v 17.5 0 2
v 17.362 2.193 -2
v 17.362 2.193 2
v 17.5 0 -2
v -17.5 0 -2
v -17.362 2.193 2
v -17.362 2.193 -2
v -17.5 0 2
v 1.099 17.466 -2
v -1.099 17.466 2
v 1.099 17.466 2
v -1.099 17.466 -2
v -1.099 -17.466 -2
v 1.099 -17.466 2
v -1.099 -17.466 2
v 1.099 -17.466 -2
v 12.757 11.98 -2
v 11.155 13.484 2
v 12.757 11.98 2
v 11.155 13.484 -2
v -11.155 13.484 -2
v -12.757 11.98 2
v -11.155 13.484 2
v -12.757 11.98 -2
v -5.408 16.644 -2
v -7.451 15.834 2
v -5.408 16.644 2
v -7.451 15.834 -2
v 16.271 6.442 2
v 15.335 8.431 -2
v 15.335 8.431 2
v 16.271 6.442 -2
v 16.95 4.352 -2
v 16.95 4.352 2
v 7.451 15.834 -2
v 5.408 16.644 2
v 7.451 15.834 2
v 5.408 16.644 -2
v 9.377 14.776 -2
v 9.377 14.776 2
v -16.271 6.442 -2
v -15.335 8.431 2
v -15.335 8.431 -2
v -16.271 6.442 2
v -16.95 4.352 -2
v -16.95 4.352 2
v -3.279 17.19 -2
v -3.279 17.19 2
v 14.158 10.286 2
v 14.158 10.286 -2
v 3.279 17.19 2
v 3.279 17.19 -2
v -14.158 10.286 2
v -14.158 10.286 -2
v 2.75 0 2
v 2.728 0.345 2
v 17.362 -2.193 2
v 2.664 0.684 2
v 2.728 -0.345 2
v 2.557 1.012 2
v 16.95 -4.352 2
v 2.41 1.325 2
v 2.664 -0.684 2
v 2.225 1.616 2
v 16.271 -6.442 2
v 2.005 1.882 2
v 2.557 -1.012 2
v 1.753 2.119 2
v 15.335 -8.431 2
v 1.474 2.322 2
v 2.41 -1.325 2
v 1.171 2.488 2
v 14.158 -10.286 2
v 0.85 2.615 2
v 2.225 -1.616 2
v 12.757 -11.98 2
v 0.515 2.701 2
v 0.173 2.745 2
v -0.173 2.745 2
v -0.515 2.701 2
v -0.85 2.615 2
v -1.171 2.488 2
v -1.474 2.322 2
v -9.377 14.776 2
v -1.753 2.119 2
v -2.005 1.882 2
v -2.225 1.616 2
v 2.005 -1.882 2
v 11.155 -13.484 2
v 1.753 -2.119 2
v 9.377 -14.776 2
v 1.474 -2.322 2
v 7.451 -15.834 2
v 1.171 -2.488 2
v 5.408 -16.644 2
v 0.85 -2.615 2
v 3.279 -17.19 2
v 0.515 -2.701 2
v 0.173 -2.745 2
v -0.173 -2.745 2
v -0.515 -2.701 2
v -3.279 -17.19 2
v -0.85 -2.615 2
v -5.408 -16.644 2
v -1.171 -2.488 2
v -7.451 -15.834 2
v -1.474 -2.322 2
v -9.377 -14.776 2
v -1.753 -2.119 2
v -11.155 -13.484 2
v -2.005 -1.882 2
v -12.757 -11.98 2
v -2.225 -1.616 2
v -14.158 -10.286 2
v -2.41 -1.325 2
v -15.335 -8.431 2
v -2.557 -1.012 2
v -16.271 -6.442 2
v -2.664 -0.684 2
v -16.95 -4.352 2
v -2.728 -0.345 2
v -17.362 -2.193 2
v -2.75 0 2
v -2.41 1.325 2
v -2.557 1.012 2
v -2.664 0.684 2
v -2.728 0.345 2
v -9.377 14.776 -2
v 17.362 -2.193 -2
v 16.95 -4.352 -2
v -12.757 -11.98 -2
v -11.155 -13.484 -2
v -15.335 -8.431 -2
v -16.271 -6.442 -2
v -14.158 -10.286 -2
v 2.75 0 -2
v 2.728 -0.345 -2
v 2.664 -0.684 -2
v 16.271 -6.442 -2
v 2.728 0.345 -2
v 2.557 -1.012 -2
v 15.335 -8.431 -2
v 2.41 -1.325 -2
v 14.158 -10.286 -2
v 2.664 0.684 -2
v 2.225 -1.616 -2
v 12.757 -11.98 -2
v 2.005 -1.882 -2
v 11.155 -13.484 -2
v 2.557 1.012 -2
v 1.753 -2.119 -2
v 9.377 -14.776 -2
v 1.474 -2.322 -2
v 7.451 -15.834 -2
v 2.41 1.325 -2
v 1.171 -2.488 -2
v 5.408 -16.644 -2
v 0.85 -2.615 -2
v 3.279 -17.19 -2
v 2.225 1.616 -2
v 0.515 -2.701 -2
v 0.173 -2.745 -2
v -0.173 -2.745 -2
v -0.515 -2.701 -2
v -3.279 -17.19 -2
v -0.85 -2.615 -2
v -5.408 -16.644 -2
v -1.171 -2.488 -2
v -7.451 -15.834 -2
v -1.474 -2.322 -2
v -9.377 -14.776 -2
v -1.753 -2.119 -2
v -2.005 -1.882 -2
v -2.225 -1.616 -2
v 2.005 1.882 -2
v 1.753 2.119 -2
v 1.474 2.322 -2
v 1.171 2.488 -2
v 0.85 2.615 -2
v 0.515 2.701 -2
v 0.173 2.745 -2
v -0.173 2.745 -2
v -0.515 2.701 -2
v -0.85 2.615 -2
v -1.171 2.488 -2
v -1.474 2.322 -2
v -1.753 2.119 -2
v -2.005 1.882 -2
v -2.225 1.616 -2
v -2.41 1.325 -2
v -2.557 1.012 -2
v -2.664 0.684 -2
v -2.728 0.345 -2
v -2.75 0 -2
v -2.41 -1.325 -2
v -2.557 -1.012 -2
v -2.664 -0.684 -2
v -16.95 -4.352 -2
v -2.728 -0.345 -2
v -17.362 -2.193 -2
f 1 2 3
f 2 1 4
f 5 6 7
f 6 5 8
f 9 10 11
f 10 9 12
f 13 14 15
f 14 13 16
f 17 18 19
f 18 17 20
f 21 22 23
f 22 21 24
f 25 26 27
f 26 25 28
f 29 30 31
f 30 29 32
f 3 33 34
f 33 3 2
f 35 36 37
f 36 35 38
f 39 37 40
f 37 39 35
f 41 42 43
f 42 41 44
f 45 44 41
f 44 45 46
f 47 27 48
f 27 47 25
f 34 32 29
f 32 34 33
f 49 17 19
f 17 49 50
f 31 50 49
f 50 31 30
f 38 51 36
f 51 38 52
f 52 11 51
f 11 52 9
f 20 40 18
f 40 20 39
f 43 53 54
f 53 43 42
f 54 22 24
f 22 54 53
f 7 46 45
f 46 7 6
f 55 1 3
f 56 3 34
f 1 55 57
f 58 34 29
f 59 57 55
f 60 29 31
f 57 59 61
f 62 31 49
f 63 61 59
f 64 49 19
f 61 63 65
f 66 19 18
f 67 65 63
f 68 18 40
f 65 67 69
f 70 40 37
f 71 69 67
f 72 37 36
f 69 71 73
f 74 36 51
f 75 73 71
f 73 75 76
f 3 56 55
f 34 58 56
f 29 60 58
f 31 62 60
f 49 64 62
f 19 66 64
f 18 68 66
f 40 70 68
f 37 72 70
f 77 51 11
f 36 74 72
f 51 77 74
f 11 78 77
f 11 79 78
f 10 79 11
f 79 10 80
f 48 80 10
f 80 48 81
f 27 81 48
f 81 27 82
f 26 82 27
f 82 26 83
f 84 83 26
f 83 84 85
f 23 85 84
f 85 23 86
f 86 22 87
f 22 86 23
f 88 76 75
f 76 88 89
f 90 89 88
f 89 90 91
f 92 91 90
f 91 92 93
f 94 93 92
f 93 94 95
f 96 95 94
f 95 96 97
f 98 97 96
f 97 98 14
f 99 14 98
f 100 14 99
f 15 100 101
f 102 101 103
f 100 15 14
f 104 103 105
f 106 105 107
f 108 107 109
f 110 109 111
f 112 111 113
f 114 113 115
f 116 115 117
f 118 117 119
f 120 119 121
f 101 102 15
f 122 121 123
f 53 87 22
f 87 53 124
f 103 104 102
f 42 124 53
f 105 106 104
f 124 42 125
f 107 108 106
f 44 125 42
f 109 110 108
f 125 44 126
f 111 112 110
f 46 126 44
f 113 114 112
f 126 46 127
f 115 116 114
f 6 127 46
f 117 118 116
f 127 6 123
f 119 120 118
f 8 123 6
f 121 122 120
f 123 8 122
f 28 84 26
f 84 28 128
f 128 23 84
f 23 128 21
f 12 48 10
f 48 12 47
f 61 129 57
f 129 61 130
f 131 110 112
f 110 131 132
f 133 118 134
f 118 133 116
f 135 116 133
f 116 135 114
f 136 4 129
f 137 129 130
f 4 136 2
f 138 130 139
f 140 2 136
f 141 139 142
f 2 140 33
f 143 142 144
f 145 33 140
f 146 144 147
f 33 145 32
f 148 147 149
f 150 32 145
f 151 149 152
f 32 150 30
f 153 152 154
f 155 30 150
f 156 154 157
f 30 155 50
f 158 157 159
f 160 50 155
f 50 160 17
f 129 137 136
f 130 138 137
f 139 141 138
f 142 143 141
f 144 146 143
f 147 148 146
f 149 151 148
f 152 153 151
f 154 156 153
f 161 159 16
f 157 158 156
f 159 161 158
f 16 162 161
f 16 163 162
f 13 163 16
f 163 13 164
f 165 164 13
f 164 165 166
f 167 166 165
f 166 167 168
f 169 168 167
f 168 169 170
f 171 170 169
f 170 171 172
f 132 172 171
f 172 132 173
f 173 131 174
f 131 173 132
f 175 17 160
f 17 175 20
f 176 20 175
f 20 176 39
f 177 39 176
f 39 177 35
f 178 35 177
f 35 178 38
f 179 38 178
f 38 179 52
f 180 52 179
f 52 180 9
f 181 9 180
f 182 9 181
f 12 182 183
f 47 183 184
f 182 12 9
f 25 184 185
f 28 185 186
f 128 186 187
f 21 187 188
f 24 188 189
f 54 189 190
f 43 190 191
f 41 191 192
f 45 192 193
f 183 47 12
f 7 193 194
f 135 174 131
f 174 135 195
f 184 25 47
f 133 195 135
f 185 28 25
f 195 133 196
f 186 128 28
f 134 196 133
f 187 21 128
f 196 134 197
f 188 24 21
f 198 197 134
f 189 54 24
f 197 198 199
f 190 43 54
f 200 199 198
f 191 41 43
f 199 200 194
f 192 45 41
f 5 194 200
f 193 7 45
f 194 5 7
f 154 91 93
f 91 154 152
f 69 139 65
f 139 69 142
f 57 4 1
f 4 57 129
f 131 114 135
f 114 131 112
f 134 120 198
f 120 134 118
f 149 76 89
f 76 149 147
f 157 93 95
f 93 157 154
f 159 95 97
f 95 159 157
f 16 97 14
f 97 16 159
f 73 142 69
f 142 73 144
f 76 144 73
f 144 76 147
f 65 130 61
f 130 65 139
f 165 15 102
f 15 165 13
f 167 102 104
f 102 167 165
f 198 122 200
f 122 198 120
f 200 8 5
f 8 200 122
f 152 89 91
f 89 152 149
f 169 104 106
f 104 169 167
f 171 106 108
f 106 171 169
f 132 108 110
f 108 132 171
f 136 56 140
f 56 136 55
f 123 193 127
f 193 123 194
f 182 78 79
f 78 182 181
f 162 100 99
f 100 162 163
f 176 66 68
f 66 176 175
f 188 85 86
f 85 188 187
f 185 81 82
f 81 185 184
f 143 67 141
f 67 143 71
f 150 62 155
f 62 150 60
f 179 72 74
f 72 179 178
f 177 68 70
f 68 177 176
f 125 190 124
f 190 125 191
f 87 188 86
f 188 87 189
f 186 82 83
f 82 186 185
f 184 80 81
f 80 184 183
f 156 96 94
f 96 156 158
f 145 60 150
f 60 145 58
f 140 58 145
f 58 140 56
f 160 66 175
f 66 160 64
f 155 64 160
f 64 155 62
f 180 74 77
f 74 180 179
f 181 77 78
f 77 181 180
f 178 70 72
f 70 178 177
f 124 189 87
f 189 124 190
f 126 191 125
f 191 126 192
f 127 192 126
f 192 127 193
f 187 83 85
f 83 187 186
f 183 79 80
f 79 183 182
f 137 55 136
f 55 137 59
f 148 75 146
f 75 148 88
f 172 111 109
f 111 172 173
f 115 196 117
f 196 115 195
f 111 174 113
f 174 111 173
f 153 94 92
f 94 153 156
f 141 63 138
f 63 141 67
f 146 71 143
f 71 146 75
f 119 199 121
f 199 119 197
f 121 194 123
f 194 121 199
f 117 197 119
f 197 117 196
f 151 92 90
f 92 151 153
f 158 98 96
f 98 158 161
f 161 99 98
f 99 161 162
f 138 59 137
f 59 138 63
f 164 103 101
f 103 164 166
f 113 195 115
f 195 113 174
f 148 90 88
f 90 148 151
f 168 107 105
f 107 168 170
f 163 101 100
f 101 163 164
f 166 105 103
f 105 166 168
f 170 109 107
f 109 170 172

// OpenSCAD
$fn = 50;


difference() {
	union() {
		translate(v = [0, 0, -2.0000000000]) {
			cylinder(h = 4, r = 17.5000000000);
		}
	}
	union() {
		translate(v = [0, 0, -100.0000000000]) {
			cylinder(h = 200, r = 2.7500000000);
		}
	}
}
